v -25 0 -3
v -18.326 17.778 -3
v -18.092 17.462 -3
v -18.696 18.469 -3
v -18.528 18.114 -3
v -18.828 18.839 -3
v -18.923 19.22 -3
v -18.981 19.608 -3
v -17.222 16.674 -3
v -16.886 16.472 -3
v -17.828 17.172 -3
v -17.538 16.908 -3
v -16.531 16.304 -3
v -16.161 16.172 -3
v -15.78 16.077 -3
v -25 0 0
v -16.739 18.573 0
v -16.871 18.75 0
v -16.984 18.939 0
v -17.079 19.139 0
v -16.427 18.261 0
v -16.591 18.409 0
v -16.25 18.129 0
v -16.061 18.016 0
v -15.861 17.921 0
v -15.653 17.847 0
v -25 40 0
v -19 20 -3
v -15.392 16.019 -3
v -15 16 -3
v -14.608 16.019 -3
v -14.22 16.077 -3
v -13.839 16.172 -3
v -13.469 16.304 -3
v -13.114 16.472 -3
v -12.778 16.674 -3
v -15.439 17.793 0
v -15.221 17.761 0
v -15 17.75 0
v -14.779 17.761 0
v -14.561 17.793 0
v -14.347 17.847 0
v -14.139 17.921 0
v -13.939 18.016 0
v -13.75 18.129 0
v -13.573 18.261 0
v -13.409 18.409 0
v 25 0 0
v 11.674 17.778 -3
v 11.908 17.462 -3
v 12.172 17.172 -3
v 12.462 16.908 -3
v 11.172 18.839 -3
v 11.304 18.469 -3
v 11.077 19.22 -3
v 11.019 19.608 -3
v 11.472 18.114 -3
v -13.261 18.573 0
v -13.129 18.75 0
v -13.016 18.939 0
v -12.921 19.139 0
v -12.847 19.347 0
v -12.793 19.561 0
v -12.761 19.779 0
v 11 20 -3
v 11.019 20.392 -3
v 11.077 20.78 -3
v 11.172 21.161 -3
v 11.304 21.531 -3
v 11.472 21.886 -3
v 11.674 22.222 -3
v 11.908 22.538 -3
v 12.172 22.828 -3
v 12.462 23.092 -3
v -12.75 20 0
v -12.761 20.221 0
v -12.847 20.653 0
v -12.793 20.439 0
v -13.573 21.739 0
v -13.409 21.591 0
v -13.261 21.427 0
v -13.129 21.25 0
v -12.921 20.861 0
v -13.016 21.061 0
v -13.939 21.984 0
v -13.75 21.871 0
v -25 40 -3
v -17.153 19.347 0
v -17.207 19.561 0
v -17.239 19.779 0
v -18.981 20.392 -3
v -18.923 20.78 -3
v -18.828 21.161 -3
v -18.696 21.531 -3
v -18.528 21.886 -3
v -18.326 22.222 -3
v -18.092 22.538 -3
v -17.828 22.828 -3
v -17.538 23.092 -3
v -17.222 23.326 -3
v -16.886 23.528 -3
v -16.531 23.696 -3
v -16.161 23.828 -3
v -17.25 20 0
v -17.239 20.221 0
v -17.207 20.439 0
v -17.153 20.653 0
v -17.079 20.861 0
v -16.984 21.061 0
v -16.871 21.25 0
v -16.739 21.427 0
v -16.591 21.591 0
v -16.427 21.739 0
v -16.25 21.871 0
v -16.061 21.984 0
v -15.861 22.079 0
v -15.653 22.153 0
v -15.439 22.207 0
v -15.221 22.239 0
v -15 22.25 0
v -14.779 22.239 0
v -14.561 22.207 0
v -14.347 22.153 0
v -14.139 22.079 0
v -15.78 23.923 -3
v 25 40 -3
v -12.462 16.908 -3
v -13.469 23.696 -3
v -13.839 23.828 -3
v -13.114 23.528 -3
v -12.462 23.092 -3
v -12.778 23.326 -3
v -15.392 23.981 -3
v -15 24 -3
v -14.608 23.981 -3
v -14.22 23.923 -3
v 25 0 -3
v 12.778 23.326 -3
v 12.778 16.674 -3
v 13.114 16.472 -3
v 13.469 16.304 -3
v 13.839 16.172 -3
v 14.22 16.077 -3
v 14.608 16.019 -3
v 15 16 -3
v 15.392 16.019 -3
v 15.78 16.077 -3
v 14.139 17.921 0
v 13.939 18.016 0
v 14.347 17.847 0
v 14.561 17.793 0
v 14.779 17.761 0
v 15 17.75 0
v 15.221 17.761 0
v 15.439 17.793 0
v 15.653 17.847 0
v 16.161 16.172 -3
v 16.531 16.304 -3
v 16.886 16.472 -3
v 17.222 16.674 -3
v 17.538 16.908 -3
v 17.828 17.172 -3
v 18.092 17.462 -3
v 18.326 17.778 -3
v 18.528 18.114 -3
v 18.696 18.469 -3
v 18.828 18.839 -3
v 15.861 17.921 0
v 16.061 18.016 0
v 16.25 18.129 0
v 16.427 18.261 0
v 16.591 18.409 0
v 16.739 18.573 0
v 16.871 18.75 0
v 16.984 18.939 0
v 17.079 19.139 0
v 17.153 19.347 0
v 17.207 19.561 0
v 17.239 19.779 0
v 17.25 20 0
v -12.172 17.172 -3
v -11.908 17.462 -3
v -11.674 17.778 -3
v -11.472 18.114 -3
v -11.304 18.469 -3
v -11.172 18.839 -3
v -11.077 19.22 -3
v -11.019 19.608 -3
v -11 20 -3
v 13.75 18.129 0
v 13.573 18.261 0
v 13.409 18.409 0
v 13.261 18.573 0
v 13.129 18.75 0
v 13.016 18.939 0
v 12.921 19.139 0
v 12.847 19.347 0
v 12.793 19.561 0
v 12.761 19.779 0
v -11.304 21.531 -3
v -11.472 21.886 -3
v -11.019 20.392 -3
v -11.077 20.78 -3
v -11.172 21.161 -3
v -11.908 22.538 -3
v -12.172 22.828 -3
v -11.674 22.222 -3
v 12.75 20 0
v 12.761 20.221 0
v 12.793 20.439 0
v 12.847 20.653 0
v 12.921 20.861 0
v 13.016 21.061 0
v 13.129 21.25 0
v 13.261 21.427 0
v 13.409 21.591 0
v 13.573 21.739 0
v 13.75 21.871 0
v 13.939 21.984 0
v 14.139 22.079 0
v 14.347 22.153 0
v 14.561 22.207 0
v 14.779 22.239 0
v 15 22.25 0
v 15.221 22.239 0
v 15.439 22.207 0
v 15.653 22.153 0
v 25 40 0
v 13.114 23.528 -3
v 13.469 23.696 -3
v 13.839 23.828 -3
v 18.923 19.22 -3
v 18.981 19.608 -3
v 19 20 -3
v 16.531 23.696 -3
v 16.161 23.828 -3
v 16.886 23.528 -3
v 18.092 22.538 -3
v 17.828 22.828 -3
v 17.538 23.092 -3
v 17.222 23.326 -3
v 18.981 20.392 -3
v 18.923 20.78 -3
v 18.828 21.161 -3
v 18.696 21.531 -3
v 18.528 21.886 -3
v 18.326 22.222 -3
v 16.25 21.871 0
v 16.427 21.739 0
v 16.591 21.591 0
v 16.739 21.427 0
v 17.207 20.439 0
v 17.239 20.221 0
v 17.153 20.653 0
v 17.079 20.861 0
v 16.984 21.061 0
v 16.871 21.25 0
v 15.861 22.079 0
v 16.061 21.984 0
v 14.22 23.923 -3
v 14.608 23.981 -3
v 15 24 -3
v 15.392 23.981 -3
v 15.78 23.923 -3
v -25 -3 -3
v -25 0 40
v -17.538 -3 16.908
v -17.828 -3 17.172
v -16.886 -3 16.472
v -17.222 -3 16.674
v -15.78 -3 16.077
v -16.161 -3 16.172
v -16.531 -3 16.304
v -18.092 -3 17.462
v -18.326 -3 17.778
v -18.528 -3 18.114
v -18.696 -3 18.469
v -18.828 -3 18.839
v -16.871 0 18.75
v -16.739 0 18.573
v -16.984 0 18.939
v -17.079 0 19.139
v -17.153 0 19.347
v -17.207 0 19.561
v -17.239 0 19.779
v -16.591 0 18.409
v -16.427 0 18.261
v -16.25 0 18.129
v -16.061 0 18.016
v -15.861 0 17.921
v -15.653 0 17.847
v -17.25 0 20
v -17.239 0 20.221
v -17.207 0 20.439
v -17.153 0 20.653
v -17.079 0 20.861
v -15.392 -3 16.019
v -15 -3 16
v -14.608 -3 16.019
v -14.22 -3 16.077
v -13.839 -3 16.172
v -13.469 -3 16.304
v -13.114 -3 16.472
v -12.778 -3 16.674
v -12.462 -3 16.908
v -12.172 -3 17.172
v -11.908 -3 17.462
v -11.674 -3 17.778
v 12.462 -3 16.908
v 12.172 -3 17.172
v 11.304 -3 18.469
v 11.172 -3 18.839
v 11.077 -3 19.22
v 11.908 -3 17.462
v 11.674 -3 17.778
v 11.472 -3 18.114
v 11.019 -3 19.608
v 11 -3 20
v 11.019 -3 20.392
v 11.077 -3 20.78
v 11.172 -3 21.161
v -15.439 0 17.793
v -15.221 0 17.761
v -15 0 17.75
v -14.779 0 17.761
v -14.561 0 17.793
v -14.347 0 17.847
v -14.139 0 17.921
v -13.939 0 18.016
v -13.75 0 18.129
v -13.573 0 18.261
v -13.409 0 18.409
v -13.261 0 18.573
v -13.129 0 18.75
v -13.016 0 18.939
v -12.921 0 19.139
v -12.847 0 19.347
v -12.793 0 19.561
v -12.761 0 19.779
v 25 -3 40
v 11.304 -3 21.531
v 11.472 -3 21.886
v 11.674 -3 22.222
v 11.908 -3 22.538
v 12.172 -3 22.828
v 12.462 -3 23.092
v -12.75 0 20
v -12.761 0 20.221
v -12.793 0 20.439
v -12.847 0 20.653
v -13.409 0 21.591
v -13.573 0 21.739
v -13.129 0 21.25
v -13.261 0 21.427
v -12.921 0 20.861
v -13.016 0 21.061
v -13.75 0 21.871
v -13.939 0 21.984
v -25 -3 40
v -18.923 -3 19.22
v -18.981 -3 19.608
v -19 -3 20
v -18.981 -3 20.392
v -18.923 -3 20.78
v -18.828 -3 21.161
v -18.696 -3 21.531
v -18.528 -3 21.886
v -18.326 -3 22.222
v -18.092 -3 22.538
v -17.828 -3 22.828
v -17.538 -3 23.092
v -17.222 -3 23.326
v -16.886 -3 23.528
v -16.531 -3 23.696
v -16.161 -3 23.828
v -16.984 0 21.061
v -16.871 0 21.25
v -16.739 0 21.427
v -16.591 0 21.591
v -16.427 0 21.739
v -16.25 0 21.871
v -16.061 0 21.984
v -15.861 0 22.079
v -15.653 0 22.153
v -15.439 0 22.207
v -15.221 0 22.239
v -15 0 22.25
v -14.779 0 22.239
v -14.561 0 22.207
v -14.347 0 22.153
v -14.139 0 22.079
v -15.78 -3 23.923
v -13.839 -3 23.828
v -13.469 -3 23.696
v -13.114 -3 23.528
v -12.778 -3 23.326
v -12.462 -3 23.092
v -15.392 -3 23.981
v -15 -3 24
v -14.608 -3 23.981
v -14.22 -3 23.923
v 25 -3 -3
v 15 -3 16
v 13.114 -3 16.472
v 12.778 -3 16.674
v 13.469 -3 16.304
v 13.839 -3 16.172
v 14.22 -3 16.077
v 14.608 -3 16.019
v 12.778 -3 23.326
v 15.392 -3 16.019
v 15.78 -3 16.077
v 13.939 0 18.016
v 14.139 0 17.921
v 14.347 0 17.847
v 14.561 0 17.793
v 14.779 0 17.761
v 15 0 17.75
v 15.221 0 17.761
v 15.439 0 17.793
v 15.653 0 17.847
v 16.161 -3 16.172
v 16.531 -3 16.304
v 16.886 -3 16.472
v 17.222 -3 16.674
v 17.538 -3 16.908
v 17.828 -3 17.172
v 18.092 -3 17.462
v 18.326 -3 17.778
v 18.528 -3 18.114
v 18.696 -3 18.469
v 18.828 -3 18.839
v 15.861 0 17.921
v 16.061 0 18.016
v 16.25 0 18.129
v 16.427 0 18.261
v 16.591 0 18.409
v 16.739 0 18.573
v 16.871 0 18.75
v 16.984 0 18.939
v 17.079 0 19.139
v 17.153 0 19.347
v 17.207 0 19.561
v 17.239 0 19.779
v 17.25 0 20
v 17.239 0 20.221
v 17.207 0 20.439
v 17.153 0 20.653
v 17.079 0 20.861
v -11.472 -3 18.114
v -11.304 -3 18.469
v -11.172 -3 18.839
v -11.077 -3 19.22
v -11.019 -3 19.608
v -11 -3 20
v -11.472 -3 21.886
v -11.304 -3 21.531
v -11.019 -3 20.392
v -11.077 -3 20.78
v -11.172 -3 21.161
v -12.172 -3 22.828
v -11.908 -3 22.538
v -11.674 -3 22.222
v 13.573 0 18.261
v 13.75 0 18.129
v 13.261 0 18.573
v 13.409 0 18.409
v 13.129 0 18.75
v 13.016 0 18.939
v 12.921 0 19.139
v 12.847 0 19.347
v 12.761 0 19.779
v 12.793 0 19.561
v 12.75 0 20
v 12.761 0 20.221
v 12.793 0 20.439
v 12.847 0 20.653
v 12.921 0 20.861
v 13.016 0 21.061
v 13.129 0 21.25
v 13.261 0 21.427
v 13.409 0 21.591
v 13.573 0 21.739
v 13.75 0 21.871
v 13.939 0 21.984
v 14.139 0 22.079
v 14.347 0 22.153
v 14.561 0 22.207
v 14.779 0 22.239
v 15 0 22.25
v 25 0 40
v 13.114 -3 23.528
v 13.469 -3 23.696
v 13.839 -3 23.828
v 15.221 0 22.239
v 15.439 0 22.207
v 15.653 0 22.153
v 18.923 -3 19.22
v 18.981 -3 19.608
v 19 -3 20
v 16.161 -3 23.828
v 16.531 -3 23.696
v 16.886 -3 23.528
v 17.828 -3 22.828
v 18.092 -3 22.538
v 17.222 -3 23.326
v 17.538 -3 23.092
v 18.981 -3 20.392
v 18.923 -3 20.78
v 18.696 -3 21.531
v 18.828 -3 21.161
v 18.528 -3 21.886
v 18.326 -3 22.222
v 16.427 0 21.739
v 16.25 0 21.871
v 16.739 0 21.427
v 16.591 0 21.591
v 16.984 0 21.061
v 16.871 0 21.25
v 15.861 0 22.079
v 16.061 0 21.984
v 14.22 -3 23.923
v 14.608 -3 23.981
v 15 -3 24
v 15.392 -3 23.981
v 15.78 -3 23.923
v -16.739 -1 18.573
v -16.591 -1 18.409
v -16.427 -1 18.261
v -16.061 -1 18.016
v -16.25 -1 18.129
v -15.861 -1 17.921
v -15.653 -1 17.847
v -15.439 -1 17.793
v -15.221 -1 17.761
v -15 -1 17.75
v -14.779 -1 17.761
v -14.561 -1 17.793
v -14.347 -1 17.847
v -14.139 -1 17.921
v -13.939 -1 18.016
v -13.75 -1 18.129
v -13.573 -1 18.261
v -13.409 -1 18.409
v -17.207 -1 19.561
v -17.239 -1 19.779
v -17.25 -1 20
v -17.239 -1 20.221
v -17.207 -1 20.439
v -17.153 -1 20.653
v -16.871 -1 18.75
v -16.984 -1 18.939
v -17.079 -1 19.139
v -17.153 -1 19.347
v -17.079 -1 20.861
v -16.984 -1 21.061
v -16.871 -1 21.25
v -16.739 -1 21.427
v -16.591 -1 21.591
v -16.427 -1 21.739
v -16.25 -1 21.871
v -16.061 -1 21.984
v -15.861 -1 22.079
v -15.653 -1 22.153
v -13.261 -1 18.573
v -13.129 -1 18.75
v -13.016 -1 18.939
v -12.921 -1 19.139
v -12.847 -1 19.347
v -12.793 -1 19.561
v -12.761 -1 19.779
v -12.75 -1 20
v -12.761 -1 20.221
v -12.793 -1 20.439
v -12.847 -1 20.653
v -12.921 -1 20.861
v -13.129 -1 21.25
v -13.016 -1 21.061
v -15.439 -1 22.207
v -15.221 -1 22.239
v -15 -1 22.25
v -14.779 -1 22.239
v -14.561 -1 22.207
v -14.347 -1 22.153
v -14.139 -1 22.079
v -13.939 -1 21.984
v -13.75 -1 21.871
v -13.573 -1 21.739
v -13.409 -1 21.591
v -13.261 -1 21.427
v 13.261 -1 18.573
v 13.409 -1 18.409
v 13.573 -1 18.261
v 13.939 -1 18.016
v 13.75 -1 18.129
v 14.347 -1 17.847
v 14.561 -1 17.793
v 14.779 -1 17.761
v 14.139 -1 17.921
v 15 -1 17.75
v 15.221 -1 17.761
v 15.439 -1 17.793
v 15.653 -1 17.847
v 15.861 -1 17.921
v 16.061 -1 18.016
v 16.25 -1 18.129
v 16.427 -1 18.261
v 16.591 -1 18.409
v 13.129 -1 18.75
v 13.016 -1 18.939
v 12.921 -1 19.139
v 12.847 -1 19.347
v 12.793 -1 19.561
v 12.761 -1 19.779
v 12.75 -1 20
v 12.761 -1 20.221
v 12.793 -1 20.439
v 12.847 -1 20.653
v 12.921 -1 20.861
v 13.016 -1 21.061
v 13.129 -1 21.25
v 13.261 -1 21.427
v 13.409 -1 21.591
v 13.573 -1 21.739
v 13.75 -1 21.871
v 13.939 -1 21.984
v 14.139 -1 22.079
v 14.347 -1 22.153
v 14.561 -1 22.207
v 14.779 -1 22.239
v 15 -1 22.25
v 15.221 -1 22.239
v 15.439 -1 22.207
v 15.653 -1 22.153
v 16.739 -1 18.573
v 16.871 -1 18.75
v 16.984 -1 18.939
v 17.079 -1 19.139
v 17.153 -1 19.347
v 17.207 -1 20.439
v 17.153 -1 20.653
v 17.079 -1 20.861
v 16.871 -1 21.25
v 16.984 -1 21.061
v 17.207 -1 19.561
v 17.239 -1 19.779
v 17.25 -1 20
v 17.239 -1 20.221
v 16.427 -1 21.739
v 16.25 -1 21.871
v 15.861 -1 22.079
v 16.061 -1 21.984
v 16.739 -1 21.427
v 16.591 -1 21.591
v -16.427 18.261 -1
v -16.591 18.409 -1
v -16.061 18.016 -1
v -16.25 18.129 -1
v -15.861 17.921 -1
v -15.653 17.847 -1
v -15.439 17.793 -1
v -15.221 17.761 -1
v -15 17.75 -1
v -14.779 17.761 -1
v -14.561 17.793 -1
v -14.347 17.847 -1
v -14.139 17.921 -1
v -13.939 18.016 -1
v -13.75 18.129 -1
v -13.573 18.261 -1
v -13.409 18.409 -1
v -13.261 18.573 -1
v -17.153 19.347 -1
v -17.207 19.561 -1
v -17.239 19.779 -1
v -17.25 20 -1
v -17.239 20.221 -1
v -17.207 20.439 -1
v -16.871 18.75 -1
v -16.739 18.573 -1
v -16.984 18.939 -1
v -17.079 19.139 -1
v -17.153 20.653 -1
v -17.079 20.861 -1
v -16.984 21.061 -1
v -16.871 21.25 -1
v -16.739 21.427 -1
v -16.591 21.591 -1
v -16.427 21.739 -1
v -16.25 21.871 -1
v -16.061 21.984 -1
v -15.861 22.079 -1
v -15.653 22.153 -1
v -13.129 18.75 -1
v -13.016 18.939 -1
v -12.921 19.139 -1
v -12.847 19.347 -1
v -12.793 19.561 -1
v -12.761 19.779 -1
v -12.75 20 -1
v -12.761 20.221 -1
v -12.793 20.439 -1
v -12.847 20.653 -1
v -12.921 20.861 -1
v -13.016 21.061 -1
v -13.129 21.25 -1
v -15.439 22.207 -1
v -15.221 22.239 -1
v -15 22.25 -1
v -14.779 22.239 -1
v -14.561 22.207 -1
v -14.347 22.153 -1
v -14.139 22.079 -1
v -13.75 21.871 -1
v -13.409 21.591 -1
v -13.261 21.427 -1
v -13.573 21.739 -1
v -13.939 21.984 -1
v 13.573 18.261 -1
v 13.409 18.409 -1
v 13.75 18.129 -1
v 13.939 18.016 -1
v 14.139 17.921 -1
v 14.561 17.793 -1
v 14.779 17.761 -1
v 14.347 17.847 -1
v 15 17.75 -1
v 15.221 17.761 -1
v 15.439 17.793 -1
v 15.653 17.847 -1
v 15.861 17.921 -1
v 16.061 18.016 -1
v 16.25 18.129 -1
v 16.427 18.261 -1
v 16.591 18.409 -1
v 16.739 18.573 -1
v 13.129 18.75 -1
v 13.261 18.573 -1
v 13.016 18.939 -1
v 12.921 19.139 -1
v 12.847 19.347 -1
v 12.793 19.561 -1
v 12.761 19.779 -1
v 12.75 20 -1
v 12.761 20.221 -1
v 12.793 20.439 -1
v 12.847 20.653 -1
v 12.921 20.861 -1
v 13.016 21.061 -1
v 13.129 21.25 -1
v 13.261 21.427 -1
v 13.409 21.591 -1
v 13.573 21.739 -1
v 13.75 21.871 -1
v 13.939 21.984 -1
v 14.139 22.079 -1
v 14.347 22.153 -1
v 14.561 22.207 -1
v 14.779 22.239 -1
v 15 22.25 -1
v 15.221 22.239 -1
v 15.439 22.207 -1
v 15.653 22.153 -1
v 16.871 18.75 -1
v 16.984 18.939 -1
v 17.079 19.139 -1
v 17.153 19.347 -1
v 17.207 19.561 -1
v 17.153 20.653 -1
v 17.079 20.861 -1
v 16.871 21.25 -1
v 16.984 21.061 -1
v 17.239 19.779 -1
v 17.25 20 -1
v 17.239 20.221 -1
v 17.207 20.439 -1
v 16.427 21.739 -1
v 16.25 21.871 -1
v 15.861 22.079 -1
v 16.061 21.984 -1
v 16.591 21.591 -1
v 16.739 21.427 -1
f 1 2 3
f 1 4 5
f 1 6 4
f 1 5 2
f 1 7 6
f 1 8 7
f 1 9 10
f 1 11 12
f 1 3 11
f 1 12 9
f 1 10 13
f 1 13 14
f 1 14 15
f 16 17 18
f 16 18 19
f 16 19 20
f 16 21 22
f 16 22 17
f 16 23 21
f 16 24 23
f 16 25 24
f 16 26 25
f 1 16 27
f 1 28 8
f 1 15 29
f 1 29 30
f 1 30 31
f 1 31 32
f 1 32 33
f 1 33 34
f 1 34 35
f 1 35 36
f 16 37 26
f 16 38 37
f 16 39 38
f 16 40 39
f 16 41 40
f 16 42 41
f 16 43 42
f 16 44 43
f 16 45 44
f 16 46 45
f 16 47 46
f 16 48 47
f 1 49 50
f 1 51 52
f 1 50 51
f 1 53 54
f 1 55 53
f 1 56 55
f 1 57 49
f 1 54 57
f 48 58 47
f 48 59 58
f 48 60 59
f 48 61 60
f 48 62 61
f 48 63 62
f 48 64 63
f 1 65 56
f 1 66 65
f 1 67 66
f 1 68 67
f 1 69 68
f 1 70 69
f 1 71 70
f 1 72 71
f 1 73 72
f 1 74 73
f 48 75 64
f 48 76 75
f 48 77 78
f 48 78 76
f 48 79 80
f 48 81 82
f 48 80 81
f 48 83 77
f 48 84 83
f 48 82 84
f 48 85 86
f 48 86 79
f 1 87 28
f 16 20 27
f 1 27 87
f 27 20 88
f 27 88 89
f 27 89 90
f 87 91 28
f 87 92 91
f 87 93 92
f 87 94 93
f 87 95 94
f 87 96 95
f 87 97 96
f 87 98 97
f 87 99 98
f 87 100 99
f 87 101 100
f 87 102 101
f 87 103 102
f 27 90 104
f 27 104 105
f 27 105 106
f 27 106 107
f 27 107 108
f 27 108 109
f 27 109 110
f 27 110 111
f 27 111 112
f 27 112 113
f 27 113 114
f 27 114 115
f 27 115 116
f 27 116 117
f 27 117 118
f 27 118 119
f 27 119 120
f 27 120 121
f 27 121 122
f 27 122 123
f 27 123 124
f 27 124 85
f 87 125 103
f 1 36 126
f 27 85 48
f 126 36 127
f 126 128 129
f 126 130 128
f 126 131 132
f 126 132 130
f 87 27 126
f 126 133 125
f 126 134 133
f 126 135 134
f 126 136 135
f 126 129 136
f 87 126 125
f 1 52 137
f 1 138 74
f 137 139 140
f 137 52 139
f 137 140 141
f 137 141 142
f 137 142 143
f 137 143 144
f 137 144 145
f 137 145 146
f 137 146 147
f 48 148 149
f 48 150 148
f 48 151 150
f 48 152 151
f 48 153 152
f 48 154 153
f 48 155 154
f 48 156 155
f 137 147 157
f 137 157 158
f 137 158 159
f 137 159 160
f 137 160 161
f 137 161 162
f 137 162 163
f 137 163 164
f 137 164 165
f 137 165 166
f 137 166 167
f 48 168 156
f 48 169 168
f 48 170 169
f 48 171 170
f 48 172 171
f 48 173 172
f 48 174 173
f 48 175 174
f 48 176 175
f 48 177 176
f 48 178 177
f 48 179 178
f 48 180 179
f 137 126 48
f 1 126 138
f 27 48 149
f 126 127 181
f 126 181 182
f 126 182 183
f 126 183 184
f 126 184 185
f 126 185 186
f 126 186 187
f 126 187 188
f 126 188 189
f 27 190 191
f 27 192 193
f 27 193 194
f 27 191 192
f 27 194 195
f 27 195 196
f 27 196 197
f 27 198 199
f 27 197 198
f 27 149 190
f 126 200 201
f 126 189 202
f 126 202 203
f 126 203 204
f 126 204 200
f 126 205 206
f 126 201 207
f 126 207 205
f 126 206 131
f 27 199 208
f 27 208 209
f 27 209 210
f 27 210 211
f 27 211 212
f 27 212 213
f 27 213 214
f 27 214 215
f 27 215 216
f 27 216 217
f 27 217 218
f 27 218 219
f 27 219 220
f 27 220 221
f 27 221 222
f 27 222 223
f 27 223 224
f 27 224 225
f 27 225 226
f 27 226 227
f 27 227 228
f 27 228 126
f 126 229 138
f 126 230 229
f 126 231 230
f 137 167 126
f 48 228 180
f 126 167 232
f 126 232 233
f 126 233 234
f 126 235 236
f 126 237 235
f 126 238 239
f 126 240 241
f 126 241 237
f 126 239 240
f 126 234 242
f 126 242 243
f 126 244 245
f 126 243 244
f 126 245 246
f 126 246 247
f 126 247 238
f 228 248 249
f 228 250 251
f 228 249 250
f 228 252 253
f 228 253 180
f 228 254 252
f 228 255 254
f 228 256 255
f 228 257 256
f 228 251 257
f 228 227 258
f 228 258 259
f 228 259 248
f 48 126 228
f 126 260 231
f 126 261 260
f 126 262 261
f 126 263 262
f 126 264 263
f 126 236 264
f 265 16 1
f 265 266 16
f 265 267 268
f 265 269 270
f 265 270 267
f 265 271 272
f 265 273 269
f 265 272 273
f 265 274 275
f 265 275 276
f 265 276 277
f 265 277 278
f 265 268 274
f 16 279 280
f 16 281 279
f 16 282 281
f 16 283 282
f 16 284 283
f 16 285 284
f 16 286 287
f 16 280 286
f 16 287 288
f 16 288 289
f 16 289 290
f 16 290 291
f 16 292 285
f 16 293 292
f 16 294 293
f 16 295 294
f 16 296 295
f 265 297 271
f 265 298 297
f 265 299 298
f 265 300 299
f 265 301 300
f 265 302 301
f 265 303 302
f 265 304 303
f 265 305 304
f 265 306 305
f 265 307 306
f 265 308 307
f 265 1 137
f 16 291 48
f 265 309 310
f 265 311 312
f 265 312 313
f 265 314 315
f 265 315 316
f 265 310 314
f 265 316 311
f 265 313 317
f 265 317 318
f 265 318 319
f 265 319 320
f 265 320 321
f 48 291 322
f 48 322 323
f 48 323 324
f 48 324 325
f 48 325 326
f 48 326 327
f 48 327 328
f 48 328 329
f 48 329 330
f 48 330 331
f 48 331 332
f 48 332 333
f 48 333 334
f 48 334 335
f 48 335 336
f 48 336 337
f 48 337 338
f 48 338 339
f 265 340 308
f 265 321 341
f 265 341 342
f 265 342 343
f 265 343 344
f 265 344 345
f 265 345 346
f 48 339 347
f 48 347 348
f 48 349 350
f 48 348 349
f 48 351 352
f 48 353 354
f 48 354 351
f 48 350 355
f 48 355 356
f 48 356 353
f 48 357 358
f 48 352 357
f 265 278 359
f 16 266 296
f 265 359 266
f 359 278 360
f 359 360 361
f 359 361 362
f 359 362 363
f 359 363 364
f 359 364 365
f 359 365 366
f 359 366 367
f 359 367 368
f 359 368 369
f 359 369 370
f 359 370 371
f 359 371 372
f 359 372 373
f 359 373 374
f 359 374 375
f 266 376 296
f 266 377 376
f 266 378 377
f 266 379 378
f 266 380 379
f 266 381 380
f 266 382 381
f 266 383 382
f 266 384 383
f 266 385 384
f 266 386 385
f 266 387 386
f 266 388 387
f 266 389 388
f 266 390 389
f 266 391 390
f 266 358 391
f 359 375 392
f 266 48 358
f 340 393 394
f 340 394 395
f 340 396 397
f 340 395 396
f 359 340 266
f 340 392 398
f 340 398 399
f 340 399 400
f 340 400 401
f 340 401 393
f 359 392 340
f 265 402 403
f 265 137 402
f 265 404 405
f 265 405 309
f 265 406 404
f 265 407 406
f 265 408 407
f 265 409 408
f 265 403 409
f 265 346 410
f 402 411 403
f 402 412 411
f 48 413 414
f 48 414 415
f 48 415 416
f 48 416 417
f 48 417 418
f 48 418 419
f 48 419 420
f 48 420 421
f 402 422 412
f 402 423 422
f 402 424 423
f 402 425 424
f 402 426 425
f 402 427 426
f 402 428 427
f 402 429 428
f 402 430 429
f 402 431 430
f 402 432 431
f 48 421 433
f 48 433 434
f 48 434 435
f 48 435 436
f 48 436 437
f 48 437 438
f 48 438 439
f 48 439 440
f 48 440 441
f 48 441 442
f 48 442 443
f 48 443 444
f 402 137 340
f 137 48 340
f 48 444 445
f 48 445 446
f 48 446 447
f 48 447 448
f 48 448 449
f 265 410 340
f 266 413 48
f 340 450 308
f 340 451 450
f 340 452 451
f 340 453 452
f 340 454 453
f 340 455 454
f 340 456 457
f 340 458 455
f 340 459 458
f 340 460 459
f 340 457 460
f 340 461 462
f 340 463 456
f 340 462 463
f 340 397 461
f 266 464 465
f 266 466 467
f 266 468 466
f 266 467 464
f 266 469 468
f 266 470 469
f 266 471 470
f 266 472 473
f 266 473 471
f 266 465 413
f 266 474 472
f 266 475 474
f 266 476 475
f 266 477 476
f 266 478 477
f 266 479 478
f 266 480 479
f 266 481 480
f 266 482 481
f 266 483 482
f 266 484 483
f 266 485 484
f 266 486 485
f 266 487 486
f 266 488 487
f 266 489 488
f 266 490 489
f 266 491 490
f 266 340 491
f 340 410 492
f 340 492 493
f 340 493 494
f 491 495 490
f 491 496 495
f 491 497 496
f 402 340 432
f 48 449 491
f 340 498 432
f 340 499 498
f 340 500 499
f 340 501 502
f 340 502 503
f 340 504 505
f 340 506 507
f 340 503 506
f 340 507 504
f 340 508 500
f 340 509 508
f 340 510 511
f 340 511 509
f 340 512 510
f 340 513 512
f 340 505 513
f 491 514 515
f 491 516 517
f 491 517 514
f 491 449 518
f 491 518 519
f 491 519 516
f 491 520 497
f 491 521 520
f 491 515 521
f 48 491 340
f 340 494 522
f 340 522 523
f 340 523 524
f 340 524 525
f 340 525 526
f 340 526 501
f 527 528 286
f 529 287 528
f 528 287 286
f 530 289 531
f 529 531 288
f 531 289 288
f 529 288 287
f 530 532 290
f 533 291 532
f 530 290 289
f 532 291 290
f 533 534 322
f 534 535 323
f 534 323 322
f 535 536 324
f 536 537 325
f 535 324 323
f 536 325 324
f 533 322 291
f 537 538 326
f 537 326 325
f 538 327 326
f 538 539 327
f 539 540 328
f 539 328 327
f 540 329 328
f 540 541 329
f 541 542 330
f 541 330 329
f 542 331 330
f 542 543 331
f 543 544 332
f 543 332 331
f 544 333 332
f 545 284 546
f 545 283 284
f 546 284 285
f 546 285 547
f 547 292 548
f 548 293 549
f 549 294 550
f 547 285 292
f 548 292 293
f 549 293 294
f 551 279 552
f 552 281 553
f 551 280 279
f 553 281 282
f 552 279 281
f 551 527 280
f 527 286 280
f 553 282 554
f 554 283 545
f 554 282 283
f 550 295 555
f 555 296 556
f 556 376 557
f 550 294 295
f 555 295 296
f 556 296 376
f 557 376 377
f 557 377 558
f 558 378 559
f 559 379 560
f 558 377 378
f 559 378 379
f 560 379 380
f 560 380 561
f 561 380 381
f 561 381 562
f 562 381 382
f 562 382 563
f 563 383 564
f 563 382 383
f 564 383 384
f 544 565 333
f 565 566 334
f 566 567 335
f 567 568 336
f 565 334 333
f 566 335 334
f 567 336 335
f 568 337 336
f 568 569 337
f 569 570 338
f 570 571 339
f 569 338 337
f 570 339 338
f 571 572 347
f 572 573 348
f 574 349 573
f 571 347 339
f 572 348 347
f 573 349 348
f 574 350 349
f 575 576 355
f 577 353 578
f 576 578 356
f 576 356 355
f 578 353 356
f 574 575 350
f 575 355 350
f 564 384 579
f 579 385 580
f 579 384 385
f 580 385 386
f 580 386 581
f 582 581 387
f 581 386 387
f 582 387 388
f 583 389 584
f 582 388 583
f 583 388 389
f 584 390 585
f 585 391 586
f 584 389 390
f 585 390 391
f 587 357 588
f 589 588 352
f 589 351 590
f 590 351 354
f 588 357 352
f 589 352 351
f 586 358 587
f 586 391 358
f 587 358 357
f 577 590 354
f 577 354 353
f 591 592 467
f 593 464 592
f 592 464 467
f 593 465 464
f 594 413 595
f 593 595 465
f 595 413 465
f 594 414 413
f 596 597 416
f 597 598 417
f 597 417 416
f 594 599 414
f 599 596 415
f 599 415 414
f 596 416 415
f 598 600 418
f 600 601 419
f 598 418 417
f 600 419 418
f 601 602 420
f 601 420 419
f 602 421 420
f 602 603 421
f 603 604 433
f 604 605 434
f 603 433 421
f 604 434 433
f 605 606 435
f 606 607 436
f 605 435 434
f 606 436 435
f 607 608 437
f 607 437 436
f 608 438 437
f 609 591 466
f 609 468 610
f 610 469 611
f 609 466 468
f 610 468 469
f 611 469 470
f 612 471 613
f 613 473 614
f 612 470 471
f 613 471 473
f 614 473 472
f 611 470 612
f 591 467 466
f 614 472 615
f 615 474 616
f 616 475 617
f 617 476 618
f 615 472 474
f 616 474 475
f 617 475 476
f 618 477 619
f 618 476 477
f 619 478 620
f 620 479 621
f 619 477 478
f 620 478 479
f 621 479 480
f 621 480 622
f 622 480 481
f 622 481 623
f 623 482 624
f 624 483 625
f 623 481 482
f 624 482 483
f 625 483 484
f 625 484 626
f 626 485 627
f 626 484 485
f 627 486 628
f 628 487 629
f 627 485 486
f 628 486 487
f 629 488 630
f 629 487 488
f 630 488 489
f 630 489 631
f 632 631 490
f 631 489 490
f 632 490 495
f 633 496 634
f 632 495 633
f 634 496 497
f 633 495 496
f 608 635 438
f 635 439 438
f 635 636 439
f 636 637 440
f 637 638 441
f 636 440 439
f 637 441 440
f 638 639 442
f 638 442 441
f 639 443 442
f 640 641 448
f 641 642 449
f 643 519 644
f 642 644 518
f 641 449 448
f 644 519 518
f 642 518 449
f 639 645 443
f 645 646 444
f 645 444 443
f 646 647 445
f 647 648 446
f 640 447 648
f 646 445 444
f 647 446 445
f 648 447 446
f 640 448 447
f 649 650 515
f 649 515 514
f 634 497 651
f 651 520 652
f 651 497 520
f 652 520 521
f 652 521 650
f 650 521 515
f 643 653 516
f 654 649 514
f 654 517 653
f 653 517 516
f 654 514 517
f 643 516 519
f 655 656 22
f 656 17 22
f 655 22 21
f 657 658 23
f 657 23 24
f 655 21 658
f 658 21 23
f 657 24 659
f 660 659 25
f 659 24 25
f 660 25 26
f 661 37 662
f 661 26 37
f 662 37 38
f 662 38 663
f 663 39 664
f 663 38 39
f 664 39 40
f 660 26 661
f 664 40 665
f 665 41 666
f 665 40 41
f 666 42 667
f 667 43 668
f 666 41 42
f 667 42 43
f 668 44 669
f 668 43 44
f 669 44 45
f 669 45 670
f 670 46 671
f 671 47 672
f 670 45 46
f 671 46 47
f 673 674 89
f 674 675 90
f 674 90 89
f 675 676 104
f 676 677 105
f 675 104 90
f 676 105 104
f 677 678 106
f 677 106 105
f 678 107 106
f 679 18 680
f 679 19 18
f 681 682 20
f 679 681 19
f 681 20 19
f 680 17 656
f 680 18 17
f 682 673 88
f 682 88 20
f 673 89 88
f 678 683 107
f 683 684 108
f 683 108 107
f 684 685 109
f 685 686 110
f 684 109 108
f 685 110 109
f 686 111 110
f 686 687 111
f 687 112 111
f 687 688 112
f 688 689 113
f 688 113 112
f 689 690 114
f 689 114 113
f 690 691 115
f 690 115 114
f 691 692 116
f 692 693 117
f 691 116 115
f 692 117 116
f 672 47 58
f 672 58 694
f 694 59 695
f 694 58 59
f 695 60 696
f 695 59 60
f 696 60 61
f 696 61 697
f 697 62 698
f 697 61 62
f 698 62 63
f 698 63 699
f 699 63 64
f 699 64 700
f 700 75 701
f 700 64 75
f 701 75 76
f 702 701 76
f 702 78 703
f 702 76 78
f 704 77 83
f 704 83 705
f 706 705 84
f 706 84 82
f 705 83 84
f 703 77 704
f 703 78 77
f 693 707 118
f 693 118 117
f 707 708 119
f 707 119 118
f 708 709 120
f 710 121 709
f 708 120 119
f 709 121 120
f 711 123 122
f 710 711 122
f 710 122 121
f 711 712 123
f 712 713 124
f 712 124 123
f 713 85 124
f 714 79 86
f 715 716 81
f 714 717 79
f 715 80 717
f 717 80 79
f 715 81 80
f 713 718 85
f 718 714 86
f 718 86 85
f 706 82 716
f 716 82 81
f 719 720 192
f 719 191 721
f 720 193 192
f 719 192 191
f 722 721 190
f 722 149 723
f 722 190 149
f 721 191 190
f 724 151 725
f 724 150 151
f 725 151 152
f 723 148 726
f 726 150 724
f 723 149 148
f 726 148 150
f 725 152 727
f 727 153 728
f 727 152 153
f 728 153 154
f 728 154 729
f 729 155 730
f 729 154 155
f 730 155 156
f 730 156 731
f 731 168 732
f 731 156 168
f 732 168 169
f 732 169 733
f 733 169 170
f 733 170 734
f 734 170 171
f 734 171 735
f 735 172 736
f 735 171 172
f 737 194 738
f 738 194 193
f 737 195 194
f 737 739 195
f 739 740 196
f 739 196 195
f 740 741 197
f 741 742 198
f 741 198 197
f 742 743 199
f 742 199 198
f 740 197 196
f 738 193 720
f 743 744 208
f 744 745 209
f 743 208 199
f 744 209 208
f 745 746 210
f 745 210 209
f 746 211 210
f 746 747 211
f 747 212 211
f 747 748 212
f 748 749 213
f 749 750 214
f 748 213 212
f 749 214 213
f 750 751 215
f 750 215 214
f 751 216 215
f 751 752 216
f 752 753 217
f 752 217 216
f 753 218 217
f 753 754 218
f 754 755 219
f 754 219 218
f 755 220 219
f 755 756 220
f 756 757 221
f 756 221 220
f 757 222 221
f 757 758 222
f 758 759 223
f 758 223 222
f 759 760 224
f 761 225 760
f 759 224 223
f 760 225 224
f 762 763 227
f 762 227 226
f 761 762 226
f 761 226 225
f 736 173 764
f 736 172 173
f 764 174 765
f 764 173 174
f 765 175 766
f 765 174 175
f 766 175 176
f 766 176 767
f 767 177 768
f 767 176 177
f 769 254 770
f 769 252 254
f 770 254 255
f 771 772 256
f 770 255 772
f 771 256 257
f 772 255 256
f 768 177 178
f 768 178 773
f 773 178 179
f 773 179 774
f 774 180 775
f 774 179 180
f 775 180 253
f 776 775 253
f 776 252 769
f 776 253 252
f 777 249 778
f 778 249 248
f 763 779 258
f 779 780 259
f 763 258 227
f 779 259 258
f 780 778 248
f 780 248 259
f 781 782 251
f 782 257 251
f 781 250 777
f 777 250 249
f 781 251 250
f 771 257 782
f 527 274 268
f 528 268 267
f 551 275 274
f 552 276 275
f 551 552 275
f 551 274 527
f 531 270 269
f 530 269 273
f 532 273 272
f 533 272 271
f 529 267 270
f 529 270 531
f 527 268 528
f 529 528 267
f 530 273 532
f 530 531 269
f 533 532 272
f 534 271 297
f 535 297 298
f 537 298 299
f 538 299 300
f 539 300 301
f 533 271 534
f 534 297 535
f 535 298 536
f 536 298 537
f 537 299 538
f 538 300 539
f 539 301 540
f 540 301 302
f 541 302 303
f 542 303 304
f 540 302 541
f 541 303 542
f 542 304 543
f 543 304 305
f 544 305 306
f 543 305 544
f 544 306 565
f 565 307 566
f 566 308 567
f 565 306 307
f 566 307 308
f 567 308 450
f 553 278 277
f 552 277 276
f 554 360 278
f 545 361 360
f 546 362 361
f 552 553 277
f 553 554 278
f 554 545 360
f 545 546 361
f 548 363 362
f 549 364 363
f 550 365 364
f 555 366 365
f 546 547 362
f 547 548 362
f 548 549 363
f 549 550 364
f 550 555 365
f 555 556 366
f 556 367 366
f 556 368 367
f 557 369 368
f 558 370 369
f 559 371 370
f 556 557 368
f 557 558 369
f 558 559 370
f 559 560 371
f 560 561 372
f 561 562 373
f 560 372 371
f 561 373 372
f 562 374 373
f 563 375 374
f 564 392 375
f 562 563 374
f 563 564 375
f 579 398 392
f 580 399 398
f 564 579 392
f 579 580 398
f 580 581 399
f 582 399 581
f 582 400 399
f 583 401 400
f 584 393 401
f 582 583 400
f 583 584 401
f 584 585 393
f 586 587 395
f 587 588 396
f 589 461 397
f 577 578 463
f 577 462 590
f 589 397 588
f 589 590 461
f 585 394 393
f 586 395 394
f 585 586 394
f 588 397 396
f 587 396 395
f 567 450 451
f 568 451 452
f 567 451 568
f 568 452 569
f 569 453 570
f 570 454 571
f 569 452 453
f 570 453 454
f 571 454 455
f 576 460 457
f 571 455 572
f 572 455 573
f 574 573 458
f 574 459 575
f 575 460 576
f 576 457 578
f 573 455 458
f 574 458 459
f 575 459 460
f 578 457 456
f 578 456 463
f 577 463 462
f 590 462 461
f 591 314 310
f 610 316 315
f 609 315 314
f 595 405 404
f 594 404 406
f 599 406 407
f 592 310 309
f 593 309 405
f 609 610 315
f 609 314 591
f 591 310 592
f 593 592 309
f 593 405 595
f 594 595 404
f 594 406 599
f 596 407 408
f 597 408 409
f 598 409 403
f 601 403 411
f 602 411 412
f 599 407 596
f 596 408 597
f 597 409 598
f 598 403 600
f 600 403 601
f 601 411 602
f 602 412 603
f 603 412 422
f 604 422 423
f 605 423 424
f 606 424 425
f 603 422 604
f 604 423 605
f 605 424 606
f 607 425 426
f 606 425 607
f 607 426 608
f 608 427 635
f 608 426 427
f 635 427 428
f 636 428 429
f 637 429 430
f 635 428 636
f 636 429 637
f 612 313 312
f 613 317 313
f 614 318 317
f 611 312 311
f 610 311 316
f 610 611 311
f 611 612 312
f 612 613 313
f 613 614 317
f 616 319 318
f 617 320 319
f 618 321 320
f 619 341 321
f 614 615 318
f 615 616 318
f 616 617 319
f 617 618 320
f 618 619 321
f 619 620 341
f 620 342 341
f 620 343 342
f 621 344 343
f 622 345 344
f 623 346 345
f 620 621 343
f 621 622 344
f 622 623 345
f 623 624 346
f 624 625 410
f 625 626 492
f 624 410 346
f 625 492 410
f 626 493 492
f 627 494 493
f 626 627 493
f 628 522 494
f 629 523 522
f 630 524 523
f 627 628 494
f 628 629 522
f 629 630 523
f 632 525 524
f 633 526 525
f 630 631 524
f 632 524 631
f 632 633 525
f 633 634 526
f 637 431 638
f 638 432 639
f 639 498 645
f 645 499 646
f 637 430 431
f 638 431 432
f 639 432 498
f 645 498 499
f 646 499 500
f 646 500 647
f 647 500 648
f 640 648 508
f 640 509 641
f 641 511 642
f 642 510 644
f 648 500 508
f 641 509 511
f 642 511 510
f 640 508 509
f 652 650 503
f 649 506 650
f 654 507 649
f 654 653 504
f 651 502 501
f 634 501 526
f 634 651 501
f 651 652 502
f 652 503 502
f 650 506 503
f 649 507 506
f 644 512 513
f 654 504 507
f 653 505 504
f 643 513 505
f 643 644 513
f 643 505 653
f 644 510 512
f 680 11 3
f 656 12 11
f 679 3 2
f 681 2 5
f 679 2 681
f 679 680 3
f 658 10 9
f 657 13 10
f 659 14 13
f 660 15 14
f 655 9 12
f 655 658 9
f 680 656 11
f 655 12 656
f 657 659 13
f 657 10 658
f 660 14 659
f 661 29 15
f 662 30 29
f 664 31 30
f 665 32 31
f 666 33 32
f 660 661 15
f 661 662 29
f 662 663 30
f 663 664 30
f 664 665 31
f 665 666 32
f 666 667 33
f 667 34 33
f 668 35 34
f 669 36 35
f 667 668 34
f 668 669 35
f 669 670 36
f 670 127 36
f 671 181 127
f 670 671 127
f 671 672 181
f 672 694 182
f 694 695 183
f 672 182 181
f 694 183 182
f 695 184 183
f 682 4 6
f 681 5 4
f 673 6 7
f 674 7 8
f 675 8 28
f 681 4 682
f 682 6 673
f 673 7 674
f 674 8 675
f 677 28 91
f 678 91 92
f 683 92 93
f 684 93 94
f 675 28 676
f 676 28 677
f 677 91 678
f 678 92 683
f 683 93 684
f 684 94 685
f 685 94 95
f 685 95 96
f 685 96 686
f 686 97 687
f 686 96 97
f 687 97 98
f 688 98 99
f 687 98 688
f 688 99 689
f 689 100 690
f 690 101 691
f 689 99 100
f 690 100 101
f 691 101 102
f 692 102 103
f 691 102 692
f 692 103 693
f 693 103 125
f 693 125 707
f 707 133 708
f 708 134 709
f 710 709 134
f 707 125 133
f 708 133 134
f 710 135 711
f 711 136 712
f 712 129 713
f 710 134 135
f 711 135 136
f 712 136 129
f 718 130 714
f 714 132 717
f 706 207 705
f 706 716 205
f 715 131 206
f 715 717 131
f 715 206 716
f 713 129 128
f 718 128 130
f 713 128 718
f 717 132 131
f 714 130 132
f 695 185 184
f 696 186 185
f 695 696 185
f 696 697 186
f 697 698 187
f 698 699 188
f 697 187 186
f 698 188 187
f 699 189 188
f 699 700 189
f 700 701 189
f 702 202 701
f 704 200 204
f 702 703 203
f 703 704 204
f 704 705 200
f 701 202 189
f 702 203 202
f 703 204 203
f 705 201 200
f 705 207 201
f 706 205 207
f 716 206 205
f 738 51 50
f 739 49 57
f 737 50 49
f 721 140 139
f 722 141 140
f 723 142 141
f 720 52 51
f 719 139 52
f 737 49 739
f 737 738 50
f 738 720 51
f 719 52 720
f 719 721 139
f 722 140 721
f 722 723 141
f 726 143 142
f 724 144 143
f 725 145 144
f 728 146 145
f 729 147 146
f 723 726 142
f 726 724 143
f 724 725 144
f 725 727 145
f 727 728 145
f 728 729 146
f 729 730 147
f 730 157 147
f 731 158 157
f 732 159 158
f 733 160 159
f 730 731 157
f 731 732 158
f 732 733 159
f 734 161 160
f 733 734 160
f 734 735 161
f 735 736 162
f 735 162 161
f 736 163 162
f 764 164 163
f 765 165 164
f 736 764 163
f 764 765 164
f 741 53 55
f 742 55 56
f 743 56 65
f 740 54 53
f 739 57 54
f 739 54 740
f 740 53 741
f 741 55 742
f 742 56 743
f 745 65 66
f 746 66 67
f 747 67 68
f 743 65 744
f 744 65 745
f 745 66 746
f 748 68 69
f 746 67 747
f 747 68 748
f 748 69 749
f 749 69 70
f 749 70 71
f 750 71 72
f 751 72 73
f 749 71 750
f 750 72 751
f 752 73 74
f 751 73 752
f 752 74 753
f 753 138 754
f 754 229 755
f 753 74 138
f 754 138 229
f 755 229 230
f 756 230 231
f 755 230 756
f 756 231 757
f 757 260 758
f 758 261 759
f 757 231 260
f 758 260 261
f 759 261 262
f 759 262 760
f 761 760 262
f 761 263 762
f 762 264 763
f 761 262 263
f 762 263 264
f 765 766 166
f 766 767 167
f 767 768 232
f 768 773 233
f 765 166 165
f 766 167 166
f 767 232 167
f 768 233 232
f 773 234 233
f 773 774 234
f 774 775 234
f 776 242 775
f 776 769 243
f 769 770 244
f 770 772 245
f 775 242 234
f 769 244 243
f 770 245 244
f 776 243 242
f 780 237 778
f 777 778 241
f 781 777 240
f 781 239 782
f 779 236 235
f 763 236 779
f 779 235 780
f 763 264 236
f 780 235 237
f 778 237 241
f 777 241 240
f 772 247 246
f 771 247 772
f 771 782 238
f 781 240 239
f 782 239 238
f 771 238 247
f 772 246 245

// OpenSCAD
// =========================================
//  L-Bracket (L字金具) with countersunk holes
//  内側コーナー = 原点
//  水平面: +Y 方向 / 垂直面: +Z 方向
// =========================================

$fn = 64;

// ---- 基本寸法 ----
width  = 50;   // 幅 (X)
depth  = 40;   // 水平フランジの奥行き (Y)
height = 40;   // 垂直フランジの高さ (Z)
t      = 3;    // 板厚

// ---- 皿穴寸法 (M4) ----
hole_d   = 4.5;  // 貫通穴径
cs_d     = 8.0;  // 皿座面径
cs_depth = 2.0;  // 皿座面深さ

// ---- 穴位置 ----
edge_off = 10;                 // 縁からの内側寄せ量
x_off    = width/2 - edge_off; // = 15 (左右対称)
hy       = depth/2;            // 水平面 中心線 (Y=20)
hz       = height/2;           // 垂直面 中心線 (Z=20)

eps = 0.01;

// 皿穴: 板の外表面が z=0、材料は -Z 方向、皿座面は +Z 側に開く
module csk_hole(thk = t) {
    // 貫通穴
    translate([0, 0, -thk - 1])
        cylinder(h = thk + 2, d = hole_d);
    // 皿(テーパ)部
    translate([0, 0, -cs_depth])
        cylinder(h = cs_depth, d1 = hole_d, d2 = cs_d);
    // 座面上の逃げ
    cylinder(h = 1, d = cs_d);
}

module l_bracket() {
    difference() {
        // ---- 本体 ----
        union() {
            // 水平フランジ (+Y 方向, 上面 z=0)
            translate([-width/2, 0, -t])
                cube([width, depth, t]);
            // 垂直フランジ (+Z 方向, 前面 y=0) ※コーナー部を含む
            translate([-width/2, -t, -t])
                cube([width, t, height + t]);
        }

        // ---- 水平面の皿穴 (座面は下側 = 外側) ----
        for (sx = [-1, 1])
            translate([sx * x_off, hy, -t])
                rotate([180, 0, 0])
                    csk_hole(t);

        // ---- 垂直面の皿穴 (座面は -Y 側 = 外側) ----
        for (sx = [-1, 1])
            translate([sx * x_off, -t, hz])
                rotate([90, 0, 0])
                    csk_hole(t);
    }
}

l_bracket();
